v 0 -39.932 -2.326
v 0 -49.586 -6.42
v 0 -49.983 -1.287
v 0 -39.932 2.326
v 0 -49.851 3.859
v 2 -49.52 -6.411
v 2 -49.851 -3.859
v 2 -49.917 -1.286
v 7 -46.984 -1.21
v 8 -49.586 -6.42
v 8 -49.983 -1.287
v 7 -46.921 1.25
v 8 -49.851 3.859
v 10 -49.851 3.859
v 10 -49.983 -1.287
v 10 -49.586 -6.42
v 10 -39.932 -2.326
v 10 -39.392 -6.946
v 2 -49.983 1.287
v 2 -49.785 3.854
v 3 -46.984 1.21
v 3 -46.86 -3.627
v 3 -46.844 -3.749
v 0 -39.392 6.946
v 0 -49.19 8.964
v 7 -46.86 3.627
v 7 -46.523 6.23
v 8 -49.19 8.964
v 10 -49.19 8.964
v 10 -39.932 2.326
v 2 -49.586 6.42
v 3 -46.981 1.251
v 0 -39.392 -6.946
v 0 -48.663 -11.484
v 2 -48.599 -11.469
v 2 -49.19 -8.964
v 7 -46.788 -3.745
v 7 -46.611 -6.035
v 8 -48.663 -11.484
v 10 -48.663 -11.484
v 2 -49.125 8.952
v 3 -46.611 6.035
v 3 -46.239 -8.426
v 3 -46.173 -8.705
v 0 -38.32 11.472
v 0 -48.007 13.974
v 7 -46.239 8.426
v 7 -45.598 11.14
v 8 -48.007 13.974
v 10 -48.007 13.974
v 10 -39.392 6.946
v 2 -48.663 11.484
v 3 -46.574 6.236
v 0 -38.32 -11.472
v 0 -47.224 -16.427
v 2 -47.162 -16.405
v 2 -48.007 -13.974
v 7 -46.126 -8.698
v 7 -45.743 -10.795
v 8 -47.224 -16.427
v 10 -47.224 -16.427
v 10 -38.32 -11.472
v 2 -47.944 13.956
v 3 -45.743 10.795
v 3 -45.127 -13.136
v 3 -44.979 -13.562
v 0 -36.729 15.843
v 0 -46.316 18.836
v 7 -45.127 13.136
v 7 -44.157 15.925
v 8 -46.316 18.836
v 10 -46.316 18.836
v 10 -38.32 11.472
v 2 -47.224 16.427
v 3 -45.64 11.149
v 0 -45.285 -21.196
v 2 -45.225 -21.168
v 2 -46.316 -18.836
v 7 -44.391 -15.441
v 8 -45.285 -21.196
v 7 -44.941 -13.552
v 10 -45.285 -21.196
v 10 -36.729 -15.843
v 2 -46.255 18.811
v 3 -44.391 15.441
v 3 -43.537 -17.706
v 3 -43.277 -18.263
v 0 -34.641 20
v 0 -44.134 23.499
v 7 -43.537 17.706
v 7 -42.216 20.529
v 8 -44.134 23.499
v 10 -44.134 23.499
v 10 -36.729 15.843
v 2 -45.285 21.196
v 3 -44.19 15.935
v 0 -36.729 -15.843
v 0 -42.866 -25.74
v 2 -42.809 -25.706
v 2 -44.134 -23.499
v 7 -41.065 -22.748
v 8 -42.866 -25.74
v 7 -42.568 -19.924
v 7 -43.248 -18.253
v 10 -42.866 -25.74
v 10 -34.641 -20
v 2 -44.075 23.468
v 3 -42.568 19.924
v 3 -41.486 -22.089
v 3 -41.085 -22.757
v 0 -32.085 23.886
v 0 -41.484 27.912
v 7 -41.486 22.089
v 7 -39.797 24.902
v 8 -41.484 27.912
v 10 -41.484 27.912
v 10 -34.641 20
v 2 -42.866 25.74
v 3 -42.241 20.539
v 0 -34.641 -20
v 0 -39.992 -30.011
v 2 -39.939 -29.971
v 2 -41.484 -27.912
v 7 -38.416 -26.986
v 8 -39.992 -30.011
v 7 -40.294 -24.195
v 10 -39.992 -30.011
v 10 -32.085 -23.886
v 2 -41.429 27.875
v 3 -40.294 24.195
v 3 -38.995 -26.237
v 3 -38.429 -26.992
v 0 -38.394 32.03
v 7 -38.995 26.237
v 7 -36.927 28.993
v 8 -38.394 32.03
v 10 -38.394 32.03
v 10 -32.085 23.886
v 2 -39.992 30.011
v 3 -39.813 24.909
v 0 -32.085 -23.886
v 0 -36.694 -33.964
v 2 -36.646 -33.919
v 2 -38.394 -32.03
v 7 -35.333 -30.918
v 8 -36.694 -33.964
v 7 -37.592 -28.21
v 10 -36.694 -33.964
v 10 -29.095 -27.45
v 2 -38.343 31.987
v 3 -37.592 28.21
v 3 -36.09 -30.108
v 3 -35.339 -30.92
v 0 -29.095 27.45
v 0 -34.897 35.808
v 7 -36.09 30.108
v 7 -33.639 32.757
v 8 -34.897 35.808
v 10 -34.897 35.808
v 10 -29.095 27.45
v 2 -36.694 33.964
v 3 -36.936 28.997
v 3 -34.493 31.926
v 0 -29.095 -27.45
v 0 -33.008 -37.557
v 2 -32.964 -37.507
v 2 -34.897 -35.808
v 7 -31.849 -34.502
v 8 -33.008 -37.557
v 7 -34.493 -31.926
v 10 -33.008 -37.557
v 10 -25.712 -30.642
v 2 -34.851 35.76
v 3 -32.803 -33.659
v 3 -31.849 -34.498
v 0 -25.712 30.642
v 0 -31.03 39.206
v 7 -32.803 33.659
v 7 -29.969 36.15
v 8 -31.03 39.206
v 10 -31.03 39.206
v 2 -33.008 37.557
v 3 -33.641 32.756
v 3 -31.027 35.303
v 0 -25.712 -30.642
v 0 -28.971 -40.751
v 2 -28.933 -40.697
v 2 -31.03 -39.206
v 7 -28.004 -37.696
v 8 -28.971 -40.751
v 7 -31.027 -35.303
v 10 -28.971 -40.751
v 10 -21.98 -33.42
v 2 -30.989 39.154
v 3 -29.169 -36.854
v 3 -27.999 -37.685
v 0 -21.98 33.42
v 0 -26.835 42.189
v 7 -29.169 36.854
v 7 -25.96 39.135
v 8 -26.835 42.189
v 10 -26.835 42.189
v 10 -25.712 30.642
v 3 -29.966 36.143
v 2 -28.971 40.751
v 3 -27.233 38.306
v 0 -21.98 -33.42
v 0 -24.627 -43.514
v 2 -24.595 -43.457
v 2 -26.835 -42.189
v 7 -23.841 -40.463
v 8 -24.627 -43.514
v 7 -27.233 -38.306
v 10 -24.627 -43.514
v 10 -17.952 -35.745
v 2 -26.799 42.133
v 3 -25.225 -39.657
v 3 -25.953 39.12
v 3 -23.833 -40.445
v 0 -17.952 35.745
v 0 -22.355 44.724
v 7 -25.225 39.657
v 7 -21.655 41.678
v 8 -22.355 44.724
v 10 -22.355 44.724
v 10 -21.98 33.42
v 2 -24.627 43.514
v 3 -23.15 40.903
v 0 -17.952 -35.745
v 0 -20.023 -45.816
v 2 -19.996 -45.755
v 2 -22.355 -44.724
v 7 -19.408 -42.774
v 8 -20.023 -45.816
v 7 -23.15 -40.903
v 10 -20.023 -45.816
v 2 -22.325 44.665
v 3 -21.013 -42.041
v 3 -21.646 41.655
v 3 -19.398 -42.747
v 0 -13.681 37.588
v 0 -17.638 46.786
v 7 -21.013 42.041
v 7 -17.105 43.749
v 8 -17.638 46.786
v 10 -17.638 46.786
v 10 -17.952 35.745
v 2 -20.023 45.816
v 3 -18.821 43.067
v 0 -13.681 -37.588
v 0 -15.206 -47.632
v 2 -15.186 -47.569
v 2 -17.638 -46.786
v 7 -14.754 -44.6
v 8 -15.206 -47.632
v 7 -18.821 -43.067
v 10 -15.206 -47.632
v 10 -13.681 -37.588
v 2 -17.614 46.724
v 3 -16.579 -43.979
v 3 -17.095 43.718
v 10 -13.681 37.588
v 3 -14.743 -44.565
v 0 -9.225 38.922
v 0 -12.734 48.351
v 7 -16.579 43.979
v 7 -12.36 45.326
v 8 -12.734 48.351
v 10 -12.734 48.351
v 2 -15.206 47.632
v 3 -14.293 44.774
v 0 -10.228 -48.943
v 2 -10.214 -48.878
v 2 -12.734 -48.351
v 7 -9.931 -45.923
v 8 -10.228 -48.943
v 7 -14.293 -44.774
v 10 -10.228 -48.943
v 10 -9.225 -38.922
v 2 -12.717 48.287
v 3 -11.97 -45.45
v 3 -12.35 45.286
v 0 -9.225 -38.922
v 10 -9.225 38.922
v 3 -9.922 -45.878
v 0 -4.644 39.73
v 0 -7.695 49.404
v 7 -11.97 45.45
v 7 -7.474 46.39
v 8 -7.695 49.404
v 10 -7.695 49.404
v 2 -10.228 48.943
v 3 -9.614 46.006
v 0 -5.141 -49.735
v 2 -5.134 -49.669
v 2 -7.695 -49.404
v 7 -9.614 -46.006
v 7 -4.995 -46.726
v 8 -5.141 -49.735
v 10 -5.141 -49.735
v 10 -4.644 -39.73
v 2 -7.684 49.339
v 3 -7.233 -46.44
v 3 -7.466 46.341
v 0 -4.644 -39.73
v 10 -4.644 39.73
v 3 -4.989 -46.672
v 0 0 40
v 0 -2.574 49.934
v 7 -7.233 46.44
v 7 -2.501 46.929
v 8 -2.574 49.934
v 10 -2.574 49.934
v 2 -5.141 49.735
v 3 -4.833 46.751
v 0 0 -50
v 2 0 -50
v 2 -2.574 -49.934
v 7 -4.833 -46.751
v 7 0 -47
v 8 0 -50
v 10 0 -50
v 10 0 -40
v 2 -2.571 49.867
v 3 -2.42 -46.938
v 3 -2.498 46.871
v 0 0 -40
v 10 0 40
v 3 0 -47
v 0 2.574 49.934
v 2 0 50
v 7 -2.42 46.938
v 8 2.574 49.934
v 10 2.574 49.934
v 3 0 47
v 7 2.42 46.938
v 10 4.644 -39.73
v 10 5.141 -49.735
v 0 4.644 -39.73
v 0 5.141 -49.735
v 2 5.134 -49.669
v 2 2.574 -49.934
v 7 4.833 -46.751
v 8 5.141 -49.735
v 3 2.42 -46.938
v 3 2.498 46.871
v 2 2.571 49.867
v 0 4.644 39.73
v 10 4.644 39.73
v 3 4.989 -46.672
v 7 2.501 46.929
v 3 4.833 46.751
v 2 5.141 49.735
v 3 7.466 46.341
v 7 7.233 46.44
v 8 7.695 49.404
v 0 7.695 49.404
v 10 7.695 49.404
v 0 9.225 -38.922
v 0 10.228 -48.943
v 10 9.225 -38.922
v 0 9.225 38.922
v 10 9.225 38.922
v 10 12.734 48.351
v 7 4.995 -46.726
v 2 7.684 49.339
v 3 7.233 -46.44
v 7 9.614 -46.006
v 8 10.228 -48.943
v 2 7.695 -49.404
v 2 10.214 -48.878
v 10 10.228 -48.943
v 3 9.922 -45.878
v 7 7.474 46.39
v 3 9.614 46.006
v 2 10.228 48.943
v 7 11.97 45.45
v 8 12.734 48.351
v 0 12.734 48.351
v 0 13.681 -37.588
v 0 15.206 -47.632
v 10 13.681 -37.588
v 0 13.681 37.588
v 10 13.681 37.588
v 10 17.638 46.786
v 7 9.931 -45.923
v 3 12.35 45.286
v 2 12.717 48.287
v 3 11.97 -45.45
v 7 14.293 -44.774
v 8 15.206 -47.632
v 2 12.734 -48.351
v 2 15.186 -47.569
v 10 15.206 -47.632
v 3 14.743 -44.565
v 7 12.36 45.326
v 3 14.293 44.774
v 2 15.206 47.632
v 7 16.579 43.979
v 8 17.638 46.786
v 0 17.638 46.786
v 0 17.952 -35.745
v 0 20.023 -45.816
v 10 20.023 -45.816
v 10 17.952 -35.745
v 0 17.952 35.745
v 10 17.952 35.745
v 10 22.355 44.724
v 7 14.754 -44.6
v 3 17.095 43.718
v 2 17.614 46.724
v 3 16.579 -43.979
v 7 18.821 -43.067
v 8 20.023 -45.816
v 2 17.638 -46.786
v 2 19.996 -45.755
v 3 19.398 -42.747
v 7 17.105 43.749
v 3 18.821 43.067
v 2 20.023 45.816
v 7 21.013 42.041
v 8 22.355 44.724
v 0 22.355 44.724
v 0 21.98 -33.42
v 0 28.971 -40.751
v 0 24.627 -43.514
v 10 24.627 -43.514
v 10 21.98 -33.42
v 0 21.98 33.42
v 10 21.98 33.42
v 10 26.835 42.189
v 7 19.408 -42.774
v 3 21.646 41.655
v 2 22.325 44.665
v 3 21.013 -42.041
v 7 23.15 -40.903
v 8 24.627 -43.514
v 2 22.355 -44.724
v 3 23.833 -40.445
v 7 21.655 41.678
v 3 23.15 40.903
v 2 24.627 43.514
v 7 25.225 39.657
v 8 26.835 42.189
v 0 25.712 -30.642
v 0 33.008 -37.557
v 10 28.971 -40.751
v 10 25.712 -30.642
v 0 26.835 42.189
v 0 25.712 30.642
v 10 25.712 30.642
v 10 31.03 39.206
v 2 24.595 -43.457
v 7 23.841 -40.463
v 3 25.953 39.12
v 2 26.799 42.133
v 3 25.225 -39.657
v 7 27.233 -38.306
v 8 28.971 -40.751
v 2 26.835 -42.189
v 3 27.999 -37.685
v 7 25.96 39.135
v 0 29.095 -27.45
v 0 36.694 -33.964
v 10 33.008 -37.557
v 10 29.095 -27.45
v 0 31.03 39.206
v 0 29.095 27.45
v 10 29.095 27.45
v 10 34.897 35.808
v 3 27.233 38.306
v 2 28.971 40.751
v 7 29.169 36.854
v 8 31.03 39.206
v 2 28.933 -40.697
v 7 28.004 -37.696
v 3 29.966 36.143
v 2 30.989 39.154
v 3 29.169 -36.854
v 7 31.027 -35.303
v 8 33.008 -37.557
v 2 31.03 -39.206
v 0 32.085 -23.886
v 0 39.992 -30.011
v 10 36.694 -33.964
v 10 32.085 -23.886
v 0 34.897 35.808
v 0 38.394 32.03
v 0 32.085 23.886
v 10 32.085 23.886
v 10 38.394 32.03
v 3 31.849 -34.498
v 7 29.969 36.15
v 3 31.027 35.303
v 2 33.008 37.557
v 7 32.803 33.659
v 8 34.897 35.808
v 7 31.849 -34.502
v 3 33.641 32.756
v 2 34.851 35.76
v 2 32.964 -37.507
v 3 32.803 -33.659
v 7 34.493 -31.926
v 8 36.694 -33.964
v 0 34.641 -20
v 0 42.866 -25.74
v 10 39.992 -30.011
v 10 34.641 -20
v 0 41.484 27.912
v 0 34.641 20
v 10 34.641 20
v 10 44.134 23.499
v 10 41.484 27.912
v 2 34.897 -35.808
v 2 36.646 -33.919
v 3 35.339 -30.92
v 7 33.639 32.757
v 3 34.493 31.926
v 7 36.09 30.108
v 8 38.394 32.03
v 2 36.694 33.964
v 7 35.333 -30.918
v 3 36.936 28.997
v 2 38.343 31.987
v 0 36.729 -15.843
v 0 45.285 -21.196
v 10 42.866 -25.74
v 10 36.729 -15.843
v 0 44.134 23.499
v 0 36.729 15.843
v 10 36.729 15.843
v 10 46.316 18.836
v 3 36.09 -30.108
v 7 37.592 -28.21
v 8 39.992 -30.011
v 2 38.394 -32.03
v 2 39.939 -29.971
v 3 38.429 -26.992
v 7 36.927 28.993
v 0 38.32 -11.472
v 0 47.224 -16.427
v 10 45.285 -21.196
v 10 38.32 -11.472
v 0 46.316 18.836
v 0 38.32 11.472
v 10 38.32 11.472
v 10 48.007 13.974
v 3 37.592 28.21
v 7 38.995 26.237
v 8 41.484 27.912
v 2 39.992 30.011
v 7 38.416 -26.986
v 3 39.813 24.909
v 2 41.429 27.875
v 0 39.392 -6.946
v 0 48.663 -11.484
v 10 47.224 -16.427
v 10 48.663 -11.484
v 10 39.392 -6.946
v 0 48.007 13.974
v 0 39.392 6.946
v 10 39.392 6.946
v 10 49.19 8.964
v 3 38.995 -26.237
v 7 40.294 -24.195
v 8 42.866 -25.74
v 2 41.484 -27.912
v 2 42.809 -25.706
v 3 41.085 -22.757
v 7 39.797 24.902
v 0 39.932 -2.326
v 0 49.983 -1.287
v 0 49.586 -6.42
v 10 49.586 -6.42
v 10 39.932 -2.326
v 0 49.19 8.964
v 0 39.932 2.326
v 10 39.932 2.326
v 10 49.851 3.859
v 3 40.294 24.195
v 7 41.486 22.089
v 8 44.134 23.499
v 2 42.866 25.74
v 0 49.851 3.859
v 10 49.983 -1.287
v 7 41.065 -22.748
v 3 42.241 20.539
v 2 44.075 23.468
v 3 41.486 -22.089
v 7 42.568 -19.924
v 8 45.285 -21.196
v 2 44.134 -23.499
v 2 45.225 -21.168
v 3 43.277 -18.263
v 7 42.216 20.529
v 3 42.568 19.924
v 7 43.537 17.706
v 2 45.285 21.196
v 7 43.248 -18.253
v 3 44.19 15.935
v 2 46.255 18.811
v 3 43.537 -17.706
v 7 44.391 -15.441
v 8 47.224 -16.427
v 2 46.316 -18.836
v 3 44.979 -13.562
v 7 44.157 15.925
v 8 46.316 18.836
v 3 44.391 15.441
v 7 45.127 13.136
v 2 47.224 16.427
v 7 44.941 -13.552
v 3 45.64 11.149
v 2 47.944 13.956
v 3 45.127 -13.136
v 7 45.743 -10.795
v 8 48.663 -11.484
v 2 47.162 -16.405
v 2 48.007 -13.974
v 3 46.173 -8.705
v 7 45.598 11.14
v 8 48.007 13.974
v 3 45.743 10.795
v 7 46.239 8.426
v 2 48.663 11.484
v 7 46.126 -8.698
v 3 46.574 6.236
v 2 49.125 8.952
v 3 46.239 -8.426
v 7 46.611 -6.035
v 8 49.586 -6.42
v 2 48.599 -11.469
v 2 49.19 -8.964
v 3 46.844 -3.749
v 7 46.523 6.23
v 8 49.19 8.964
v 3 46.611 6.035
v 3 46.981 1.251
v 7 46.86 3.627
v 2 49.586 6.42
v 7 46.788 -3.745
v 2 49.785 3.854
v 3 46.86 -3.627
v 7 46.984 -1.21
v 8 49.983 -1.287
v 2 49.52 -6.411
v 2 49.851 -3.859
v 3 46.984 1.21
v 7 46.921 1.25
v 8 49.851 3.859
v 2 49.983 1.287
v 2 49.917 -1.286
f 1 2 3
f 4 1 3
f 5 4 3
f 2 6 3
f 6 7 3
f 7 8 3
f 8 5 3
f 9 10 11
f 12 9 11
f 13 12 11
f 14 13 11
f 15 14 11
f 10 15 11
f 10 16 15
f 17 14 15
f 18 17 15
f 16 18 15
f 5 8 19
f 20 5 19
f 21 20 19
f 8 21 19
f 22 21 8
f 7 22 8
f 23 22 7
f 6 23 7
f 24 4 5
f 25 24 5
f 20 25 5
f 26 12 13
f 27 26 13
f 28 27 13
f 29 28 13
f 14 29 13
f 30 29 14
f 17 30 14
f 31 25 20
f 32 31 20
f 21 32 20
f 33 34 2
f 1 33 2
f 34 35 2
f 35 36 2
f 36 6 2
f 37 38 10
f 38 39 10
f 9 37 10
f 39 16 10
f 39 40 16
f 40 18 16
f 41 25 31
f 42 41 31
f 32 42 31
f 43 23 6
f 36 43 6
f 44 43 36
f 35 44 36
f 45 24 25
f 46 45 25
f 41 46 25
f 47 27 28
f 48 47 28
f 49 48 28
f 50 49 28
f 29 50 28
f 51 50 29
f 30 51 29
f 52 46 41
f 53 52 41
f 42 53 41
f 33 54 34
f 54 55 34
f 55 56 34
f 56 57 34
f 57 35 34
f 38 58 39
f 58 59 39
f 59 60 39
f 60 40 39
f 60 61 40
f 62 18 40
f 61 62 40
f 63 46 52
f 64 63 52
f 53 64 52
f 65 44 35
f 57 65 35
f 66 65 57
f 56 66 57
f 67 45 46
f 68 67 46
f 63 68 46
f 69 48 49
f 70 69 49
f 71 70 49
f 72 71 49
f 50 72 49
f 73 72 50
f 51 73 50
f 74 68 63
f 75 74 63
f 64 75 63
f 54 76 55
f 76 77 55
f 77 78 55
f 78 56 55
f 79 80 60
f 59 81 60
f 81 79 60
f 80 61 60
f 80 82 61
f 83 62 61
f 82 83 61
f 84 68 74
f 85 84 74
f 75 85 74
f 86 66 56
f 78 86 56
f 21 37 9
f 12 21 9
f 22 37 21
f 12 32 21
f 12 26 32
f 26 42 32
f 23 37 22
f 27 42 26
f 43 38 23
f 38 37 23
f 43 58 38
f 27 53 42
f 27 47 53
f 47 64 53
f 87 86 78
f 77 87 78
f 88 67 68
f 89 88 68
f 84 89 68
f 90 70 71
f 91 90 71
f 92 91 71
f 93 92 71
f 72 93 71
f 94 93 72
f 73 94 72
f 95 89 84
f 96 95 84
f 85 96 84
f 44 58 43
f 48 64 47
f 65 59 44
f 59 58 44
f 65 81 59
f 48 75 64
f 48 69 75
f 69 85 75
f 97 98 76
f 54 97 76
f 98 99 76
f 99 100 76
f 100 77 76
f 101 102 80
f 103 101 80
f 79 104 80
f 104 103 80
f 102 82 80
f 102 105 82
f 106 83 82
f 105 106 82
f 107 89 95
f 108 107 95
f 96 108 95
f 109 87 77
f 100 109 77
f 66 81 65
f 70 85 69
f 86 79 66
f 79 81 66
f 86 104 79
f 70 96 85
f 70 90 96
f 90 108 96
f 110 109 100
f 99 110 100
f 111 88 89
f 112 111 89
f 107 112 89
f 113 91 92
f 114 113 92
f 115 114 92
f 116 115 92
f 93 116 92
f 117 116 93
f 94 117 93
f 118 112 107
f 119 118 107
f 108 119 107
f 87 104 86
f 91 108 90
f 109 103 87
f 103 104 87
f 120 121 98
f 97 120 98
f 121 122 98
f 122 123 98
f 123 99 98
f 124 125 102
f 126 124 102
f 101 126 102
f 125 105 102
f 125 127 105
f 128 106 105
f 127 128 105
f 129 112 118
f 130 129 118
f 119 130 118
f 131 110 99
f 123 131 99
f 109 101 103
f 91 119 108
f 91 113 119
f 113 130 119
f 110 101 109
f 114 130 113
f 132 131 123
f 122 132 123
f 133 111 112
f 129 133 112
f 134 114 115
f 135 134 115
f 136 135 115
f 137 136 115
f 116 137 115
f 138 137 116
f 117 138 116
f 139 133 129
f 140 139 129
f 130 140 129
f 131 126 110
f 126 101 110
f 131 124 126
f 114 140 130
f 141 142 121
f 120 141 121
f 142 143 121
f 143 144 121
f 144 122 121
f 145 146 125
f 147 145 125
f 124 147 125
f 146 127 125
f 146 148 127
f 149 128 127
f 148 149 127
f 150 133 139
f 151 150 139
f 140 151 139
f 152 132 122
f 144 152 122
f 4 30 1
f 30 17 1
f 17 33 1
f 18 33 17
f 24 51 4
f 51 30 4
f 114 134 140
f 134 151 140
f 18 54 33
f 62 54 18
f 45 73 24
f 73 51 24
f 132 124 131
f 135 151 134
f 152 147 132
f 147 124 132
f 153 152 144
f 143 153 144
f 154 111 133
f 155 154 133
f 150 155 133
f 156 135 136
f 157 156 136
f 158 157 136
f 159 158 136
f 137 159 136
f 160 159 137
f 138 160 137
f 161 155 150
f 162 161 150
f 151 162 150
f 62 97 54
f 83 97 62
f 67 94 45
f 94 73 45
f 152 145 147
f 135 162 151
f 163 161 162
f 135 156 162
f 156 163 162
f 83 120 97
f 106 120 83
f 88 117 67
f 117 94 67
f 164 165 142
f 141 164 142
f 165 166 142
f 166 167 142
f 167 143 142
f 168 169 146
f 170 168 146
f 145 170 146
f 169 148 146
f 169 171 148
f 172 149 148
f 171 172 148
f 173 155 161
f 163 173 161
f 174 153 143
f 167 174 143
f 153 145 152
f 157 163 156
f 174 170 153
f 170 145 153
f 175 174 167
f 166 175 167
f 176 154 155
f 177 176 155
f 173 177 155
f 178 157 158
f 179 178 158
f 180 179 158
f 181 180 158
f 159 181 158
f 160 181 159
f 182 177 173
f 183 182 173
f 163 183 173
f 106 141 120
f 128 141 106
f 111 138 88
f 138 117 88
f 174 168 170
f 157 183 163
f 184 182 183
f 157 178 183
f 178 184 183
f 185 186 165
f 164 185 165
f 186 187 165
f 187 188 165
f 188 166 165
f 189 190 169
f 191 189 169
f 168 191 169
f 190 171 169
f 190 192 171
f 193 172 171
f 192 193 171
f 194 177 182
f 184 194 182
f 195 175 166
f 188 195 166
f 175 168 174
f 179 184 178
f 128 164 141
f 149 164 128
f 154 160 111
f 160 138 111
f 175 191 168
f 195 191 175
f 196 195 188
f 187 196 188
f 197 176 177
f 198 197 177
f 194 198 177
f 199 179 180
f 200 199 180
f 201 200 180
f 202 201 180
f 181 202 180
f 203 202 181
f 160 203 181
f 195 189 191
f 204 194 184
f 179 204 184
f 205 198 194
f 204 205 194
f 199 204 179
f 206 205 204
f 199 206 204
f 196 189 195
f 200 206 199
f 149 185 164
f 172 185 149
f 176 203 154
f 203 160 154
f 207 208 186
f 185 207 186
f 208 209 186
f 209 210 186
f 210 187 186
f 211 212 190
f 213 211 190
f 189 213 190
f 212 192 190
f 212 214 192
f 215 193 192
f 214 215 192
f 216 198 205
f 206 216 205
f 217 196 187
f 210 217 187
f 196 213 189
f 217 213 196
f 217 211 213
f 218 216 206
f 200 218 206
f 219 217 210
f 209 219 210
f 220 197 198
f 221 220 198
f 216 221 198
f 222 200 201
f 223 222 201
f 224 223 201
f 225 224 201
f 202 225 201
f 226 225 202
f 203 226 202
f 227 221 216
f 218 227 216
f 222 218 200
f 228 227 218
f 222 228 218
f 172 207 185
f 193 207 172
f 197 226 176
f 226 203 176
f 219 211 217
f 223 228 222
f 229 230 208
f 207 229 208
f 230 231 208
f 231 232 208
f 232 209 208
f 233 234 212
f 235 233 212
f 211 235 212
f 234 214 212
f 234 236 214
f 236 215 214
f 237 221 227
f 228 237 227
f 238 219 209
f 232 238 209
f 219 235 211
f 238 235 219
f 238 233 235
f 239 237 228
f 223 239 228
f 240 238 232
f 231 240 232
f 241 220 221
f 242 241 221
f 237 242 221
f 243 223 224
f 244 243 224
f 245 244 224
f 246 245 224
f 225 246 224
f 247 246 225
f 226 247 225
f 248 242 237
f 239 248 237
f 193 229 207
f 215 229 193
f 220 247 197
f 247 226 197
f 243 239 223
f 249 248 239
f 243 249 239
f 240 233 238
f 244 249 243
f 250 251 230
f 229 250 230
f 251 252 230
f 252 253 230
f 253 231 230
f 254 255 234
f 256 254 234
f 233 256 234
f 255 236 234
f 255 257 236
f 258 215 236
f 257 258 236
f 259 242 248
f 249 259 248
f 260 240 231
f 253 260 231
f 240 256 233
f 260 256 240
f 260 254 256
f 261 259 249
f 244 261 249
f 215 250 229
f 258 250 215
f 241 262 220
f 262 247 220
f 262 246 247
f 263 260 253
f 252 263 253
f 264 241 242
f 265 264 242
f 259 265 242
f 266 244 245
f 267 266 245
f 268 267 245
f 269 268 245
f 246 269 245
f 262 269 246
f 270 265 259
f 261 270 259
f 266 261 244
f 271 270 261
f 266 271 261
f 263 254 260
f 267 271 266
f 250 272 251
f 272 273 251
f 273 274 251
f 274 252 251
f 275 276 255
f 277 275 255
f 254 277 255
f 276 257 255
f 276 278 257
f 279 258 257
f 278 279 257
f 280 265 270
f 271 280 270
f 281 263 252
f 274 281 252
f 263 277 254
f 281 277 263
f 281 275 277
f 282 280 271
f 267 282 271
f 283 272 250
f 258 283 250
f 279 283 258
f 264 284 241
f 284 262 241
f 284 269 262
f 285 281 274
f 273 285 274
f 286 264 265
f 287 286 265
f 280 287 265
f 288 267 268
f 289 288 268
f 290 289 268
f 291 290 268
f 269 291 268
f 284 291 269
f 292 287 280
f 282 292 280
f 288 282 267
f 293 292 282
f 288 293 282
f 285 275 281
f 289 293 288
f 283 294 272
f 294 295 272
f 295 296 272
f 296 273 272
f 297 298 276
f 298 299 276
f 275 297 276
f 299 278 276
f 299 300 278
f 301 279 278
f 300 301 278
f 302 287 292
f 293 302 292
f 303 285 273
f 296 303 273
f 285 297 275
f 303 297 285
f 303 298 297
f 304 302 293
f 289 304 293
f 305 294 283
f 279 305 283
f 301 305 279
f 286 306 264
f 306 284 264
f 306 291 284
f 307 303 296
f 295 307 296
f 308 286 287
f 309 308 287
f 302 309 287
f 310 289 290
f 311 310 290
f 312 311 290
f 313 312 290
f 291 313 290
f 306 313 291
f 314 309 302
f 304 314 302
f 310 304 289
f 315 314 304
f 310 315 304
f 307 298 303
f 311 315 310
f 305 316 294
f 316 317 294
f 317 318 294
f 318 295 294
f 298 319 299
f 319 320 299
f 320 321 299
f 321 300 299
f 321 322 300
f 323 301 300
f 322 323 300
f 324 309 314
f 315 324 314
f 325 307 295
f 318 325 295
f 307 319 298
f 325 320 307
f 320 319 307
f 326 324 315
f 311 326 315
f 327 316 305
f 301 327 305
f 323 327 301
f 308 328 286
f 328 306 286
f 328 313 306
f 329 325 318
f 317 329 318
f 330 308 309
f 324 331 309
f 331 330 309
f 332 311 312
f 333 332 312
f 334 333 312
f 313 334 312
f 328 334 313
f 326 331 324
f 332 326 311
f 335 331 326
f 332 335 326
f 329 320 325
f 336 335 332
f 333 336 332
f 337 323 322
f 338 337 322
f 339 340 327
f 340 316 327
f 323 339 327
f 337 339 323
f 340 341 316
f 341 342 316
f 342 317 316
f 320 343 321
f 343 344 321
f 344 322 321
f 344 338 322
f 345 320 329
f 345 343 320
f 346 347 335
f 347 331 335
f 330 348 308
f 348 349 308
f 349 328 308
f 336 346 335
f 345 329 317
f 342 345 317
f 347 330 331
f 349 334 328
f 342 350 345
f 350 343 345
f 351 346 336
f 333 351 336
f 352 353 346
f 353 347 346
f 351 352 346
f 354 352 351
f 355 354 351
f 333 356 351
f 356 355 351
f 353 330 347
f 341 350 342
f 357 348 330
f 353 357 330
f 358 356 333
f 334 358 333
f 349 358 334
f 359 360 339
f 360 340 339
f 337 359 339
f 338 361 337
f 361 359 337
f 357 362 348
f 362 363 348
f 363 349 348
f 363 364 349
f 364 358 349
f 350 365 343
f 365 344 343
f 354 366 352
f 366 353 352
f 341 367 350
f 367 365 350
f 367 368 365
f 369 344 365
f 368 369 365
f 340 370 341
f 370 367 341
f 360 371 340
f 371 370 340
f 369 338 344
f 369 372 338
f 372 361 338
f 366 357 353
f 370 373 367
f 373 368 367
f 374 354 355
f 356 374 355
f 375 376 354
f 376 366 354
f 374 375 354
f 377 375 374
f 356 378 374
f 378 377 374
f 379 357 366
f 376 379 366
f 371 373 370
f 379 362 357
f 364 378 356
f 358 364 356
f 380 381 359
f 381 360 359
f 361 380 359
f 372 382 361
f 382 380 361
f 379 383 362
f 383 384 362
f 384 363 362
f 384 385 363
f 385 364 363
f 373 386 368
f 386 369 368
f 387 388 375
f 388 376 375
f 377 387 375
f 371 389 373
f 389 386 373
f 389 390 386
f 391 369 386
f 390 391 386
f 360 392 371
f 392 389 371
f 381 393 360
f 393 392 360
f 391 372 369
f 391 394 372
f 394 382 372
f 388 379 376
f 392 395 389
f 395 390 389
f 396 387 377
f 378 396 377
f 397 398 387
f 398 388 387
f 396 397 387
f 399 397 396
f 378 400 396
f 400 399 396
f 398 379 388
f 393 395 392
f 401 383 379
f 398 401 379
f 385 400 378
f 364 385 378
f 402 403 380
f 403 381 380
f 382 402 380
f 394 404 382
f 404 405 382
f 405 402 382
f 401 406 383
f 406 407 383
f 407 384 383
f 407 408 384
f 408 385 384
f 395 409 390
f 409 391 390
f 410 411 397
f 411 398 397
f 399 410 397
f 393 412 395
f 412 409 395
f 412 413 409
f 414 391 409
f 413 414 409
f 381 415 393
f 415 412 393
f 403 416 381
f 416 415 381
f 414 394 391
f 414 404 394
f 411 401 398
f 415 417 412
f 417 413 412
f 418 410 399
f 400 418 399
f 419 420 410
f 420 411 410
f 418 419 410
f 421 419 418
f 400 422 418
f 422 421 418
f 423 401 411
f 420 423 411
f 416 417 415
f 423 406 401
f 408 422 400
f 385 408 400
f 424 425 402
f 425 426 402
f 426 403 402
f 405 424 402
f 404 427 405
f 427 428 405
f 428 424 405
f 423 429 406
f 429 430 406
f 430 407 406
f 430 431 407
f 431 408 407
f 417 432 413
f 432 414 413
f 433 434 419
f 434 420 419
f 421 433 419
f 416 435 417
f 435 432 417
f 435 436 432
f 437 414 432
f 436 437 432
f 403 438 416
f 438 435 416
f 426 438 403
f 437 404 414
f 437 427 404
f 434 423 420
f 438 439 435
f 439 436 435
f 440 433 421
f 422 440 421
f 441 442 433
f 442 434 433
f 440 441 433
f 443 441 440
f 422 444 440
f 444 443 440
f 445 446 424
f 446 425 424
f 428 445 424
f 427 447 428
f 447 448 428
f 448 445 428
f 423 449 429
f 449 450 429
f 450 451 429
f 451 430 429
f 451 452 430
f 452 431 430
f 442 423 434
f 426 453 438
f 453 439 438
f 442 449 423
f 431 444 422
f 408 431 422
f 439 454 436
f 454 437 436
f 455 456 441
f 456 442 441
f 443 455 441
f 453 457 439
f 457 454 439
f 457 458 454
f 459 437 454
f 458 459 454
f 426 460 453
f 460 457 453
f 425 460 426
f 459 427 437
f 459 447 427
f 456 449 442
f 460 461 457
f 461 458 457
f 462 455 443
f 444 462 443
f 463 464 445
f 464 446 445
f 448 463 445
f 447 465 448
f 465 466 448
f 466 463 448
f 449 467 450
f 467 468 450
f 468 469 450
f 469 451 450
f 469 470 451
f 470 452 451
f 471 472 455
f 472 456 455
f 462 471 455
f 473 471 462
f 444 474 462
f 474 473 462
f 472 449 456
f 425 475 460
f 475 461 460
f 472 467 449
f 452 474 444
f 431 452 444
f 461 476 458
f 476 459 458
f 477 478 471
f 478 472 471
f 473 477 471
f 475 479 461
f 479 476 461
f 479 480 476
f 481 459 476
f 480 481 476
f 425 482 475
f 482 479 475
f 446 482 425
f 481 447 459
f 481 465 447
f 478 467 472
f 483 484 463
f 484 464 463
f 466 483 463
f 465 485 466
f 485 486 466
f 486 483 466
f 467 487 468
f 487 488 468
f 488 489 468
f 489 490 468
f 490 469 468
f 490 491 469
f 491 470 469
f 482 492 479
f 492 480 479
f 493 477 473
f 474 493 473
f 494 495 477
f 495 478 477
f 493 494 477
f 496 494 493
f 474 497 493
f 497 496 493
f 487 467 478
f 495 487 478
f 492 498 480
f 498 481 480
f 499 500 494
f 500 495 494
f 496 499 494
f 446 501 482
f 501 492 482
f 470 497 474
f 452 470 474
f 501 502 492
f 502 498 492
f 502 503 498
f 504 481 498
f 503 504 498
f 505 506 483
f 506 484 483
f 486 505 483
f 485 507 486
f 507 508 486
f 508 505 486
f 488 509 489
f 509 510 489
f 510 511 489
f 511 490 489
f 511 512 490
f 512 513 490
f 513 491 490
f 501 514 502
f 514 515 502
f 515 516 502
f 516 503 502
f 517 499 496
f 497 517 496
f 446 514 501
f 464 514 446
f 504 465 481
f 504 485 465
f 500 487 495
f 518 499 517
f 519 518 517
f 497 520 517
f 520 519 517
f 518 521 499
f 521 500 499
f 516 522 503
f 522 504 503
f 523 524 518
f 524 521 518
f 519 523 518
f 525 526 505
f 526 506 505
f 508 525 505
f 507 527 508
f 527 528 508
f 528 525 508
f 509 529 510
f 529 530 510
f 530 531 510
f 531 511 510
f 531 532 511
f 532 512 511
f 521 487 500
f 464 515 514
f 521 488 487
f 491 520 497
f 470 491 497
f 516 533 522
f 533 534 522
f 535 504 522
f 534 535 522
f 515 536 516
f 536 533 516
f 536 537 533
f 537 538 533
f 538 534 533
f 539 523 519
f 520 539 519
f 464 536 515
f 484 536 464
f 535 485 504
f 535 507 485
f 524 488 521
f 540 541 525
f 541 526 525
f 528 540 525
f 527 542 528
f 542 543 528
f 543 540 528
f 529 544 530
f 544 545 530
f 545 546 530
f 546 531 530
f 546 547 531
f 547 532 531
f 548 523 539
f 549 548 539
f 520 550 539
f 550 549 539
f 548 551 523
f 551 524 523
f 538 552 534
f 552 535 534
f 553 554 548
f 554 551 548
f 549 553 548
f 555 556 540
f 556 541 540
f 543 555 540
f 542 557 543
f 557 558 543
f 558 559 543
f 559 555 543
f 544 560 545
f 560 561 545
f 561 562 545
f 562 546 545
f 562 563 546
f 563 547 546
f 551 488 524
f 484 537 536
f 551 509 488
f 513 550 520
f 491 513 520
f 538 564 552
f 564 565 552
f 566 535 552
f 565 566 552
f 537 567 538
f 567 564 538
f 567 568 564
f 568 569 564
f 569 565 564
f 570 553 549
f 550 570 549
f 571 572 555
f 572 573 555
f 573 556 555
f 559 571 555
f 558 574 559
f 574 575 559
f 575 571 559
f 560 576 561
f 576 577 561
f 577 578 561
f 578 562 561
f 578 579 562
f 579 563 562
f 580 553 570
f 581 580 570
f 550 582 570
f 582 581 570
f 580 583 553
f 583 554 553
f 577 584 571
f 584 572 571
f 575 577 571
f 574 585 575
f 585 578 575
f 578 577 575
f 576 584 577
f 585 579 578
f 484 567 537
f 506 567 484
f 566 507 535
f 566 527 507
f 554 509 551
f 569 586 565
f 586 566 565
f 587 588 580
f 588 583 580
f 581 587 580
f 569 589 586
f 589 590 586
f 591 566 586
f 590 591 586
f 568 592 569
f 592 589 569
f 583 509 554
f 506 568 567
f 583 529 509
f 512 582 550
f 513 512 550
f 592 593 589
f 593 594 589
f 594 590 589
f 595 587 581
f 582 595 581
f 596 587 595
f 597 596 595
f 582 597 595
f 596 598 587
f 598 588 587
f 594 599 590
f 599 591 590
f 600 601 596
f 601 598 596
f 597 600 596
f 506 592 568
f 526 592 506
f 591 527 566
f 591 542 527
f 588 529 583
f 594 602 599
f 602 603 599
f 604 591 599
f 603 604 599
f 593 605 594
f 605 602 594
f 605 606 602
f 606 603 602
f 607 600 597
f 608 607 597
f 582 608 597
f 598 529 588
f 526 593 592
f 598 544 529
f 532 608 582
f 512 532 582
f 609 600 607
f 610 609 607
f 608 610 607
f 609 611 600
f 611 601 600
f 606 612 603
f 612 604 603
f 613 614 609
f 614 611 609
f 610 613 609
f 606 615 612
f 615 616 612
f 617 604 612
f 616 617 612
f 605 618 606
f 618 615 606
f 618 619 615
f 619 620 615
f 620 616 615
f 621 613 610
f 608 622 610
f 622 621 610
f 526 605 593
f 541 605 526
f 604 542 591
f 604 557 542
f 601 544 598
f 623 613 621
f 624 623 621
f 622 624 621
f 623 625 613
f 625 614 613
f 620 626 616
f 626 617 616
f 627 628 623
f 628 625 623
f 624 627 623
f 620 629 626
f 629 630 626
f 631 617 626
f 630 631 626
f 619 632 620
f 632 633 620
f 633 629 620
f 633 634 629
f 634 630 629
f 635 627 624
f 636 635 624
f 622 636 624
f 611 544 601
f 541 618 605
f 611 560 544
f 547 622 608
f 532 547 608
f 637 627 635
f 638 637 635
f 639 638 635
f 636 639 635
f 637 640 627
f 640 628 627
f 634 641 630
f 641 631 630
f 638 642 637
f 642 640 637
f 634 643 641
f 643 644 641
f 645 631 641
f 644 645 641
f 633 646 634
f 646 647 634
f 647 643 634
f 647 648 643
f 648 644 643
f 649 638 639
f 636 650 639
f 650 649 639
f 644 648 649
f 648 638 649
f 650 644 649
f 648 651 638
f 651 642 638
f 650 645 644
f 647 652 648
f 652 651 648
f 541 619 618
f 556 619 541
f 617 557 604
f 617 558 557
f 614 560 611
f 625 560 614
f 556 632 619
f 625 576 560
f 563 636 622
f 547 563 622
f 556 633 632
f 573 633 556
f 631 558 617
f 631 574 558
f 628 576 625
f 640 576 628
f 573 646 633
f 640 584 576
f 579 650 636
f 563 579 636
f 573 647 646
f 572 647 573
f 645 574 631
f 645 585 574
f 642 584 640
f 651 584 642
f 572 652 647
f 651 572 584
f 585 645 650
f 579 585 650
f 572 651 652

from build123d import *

# Parameters (mm, degrees)
SKETCH2_R          = 40
CUT_EXTRUDE1_DEPTH = 10


with BuildPart() as part:
    # Sketch1 → Revolve1 (revolve)
    with BuildSketch(Plane.XY, mode=Mode.PRIVATE) as revolve1_sk:
        Polygon((0, 0), (0, 50), (2, 50), (3, 47), (7, 47), (8, 50), (10, 50), (10, 0), align=None)
    revolve(revolve1_sk.sketch.rotate(Axis((10, 0, 0), (-1, 0, 0)), 90), axis=Axis((10, 0, 0), (-1, 0, 0)))

    # Sketch2 → Cut-Extrude1 (cut)
    with BuildSketch(Plane(origin=(10, 0, 0), x_dir=(0, 0, -1), z_dir=(1, 0, 0))):
        Circle(SKETCH2_R)
    extrude(amount=-CUT_EXTRUDE1_DEPTH, mode=Mode.SUBTRACT)


solid = part.part
